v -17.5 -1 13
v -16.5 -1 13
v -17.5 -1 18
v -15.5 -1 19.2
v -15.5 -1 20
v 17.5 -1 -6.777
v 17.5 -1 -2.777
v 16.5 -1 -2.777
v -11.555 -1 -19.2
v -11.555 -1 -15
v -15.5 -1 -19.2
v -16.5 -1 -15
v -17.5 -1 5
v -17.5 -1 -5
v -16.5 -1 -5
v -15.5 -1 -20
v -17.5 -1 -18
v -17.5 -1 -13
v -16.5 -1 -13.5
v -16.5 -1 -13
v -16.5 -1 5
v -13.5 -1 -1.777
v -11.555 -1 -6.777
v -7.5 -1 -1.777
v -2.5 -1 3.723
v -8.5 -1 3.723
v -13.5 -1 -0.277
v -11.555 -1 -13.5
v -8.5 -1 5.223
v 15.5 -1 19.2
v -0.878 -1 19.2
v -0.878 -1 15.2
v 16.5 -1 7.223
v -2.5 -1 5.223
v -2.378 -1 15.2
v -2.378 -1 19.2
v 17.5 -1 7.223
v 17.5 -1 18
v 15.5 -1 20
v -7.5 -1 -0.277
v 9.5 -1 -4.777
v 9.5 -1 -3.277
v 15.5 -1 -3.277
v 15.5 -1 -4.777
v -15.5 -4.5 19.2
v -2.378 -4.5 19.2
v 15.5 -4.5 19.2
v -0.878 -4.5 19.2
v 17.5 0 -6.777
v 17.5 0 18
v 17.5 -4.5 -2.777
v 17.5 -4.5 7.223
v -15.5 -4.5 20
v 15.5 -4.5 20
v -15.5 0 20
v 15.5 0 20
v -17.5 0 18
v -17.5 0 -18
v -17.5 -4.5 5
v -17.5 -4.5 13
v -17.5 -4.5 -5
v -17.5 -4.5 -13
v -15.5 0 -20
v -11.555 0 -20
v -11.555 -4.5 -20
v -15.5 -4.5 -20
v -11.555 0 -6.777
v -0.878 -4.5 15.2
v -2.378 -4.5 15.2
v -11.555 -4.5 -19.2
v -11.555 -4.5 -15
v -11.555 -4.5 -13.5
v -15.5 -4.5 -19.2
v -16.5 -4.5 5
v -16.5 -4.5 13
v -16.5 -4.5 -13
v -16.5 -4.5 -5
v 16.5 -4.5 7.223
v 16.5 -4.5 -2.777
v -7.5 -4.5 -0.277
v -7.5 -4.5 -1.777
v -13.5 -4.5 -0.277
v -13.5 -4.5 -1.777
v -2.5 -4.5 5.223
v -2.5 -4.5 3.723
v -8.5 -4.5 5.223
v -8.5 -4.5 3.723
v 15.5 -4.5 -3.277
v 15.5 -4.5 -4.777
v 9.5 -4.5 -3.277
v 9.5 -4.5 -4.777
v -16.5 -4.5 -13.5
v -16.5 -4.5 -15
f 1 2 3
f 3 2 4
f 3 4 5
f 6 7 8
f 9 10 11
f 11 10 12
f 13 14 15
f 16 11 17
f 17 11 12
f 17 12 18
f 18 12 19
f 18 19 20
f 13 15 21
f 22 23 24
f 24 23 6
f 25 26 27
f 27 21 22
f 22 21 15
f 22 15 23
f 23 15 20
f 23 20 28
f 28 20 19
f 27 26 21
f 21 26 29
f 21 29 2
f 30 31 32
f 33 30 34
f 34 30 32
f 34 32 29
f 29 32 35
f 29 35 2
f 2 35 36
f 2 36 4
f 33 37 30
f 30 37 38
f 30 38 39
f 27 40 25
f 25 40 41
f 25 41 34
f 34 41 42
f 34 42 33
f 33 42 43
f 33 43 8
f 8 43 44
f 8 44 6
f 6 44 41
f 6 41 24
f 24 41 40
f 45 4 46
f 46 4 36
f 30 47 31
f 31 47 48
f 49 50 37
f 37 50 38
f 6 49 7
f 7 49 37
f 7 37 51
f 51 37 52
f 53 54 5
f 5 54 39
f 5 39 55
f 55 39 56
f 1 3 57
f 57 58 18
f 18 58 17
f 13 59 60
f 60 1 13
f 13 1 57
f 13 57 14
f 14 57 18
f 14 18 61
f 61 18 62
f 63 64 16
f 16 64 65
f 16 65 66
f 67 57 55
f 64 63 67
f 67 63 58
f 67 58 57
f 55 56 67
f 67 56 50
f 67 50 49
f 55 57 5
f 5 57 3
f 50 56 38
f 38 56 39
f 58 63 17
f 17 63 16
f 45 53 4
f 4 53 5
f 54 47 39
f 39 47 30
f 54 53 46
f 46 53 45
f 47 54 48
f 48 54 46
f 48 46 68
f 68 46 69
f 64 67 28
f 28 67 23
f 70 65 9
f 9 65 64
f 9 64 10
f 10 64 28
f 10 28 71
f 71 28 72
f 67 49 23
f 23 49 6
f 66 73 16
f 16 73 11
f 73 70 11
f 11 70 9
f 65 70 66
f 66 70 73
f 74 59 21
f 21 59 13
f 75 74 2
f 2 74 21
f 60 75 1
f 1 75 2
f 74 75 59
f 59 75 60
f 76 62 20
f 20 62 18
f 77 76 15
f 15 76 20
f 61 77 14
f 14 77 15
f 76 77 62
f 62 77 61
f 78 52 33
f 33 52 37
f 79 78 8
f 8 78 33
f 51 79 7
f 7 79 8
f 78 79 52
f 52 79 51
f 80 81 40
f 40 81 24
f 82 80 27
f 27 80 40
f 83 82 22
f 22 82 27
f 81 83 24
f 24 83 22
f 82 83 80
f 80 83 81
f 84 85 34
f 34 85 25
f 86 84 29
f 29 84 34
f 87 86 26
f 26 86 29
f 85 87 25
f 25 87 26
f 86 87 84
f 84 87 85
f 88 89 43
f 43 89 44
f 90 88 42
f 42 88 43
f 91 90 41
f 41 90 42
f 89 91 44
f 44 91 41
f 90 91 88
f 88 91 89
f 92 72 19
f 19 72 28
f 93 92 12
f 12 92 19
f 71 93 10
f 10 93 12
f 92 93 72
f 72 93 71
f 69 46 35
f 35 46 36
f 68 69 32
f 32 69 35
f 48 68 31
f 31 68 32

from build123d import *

# Parameters (mm, degrees)
SKETCH_1_W             = 35
SKETCH_1_H             = 40
SM_BASE_FLANGE_1_DEPTH = 1
CHAMFER_1_SIZE         = 2
SKETCH_9_W             = 31
SKETCH_9_H             = 0.8
EXTRUDE_1_DEPTH        = 3.5
CUT_EXTRUDE_1_DEPTH    = 27.804850307
SKETCH_11_W            = 3.944984663
SKETCH_11_H            = 0.8
EXTRUDE_2_DEPTH        = 3.5
SKETCH_12_W            = 1
SKETCH_12_H            = 8
SKETCH_12_H_2          = 10
EXTRUDE_3_DEPTH        = 3.5
SKETCH_13_W            = 6
SKETCH_13_H            = 1.5
SKETCH_13_W_2          = 4.944984663
SKETCH_13_W_3          = 1.5
SKETCH_13_H_2          = 4
EXTRUDE_4_DEPTH        = 3.5


# Sheet-metal steps are written as plain solids
with BuildPart() as part:
    # Sketch 1 → 基体-法兰1 (new body)
    with BuildSketch(Plane(origin=(0, 0, 0), x_dir=(1, 0, 0), z_dir=(0, 1, 0))):
        Rectangle(SKETCH_1_W, SKETCH_1_H)
    extrude(amount=-SM_BASE_FLANGE_1_DEPTH)

    # 倒角1
    chamfer_1_edges = [part.edges().sort_by_distance(p)[0] for p in [
        (17.5, -0.5, 20),
        (-17.5, -0.5, 20),
        (-17.5, -0.5, -20),
        (17.5, -0.5, -20),
    ]]
    chamfer(chamfer_1_edges, length=CHAMFER_1_SIZE)

    # 草图9 → 凸台-拉伸1 (add)
    with BuildSketch(Plane.XZ.offset(1)):
        with Locations((0, 19.6)):
            Rectangle(SKETCH_9_W, SKETCH_9_H)
    extrude(amount=EXTRUDE_1_DEPTH)

    # 草图10 → 切除-拉伸1 (cut, through all)
    with BuildSketch(Plane.XZ.offset(1)):
        Polygon((17.5, -6.777010343), (-11.555015337, -6.777010343), (-11.555015337, -20), (15.5, -20), (17.5, -18), align=None)
    extrude(amount=-CUT_EXTRUDE_1_DEPTH, mode=Mode.SUBTRACT)

    # 草图11 → 凸台-拉伸2 (add)
    with BuildSketch(Plane.XZ.offset(1)):
        with Locations((-13.527507669, -19.6)):
            Rectangle(SKETCH_11_W, SKETCH_11_H)
    extrude(amount=EXTRUDE_2_DEPTH)

    # 草图12 → 凸台-拉伸3 (add)
    with BuildSketch(Plane.XZ.offset(1)):
        with Locations((-17, 9)):
            Rectangle(SKETCH_12_W, SKETCH_12_H)
        with Locations((-17, -9)):
            Rectangle(SKETCH_12_W, SKETCH_12_H)
        with Locations((17, 2.222989657)):
            Rectangle(SKETCH_12_W, SKETCH_12_H_2)
    extrude(amount=EXTRUDE_3_DEPTH)

    # 草图13 → 凸台-拉伸4 (add)
    with BuildSketch(Plane.XZ.offset(1)):
        with Locations((-10.5, -1.027010343)):
            Rectangle(SKETCH_13_W, SKETCH_13_H)
        with Locations((-5.5, 4.472989657)):
            Rectangle(SKETCH_13_W, SKETCH_13_H)
        with Locations((12.5, -4.027010343)):
            Rectangle(SKETCH_13_W, SKETCH_13_H)
        with Locations((-14.027507669, -14.25)):
            Rectangle(SKETCH_13_W_2, SKETCH_13_H)
        with Locations((-1.628117535, 17.2)):
            Rectangle(SKETCH_13_W_3, SKETCH_13_H_2)
    extrude(amount=EXTRUDE_4_DEPTH)


solid = part.part
